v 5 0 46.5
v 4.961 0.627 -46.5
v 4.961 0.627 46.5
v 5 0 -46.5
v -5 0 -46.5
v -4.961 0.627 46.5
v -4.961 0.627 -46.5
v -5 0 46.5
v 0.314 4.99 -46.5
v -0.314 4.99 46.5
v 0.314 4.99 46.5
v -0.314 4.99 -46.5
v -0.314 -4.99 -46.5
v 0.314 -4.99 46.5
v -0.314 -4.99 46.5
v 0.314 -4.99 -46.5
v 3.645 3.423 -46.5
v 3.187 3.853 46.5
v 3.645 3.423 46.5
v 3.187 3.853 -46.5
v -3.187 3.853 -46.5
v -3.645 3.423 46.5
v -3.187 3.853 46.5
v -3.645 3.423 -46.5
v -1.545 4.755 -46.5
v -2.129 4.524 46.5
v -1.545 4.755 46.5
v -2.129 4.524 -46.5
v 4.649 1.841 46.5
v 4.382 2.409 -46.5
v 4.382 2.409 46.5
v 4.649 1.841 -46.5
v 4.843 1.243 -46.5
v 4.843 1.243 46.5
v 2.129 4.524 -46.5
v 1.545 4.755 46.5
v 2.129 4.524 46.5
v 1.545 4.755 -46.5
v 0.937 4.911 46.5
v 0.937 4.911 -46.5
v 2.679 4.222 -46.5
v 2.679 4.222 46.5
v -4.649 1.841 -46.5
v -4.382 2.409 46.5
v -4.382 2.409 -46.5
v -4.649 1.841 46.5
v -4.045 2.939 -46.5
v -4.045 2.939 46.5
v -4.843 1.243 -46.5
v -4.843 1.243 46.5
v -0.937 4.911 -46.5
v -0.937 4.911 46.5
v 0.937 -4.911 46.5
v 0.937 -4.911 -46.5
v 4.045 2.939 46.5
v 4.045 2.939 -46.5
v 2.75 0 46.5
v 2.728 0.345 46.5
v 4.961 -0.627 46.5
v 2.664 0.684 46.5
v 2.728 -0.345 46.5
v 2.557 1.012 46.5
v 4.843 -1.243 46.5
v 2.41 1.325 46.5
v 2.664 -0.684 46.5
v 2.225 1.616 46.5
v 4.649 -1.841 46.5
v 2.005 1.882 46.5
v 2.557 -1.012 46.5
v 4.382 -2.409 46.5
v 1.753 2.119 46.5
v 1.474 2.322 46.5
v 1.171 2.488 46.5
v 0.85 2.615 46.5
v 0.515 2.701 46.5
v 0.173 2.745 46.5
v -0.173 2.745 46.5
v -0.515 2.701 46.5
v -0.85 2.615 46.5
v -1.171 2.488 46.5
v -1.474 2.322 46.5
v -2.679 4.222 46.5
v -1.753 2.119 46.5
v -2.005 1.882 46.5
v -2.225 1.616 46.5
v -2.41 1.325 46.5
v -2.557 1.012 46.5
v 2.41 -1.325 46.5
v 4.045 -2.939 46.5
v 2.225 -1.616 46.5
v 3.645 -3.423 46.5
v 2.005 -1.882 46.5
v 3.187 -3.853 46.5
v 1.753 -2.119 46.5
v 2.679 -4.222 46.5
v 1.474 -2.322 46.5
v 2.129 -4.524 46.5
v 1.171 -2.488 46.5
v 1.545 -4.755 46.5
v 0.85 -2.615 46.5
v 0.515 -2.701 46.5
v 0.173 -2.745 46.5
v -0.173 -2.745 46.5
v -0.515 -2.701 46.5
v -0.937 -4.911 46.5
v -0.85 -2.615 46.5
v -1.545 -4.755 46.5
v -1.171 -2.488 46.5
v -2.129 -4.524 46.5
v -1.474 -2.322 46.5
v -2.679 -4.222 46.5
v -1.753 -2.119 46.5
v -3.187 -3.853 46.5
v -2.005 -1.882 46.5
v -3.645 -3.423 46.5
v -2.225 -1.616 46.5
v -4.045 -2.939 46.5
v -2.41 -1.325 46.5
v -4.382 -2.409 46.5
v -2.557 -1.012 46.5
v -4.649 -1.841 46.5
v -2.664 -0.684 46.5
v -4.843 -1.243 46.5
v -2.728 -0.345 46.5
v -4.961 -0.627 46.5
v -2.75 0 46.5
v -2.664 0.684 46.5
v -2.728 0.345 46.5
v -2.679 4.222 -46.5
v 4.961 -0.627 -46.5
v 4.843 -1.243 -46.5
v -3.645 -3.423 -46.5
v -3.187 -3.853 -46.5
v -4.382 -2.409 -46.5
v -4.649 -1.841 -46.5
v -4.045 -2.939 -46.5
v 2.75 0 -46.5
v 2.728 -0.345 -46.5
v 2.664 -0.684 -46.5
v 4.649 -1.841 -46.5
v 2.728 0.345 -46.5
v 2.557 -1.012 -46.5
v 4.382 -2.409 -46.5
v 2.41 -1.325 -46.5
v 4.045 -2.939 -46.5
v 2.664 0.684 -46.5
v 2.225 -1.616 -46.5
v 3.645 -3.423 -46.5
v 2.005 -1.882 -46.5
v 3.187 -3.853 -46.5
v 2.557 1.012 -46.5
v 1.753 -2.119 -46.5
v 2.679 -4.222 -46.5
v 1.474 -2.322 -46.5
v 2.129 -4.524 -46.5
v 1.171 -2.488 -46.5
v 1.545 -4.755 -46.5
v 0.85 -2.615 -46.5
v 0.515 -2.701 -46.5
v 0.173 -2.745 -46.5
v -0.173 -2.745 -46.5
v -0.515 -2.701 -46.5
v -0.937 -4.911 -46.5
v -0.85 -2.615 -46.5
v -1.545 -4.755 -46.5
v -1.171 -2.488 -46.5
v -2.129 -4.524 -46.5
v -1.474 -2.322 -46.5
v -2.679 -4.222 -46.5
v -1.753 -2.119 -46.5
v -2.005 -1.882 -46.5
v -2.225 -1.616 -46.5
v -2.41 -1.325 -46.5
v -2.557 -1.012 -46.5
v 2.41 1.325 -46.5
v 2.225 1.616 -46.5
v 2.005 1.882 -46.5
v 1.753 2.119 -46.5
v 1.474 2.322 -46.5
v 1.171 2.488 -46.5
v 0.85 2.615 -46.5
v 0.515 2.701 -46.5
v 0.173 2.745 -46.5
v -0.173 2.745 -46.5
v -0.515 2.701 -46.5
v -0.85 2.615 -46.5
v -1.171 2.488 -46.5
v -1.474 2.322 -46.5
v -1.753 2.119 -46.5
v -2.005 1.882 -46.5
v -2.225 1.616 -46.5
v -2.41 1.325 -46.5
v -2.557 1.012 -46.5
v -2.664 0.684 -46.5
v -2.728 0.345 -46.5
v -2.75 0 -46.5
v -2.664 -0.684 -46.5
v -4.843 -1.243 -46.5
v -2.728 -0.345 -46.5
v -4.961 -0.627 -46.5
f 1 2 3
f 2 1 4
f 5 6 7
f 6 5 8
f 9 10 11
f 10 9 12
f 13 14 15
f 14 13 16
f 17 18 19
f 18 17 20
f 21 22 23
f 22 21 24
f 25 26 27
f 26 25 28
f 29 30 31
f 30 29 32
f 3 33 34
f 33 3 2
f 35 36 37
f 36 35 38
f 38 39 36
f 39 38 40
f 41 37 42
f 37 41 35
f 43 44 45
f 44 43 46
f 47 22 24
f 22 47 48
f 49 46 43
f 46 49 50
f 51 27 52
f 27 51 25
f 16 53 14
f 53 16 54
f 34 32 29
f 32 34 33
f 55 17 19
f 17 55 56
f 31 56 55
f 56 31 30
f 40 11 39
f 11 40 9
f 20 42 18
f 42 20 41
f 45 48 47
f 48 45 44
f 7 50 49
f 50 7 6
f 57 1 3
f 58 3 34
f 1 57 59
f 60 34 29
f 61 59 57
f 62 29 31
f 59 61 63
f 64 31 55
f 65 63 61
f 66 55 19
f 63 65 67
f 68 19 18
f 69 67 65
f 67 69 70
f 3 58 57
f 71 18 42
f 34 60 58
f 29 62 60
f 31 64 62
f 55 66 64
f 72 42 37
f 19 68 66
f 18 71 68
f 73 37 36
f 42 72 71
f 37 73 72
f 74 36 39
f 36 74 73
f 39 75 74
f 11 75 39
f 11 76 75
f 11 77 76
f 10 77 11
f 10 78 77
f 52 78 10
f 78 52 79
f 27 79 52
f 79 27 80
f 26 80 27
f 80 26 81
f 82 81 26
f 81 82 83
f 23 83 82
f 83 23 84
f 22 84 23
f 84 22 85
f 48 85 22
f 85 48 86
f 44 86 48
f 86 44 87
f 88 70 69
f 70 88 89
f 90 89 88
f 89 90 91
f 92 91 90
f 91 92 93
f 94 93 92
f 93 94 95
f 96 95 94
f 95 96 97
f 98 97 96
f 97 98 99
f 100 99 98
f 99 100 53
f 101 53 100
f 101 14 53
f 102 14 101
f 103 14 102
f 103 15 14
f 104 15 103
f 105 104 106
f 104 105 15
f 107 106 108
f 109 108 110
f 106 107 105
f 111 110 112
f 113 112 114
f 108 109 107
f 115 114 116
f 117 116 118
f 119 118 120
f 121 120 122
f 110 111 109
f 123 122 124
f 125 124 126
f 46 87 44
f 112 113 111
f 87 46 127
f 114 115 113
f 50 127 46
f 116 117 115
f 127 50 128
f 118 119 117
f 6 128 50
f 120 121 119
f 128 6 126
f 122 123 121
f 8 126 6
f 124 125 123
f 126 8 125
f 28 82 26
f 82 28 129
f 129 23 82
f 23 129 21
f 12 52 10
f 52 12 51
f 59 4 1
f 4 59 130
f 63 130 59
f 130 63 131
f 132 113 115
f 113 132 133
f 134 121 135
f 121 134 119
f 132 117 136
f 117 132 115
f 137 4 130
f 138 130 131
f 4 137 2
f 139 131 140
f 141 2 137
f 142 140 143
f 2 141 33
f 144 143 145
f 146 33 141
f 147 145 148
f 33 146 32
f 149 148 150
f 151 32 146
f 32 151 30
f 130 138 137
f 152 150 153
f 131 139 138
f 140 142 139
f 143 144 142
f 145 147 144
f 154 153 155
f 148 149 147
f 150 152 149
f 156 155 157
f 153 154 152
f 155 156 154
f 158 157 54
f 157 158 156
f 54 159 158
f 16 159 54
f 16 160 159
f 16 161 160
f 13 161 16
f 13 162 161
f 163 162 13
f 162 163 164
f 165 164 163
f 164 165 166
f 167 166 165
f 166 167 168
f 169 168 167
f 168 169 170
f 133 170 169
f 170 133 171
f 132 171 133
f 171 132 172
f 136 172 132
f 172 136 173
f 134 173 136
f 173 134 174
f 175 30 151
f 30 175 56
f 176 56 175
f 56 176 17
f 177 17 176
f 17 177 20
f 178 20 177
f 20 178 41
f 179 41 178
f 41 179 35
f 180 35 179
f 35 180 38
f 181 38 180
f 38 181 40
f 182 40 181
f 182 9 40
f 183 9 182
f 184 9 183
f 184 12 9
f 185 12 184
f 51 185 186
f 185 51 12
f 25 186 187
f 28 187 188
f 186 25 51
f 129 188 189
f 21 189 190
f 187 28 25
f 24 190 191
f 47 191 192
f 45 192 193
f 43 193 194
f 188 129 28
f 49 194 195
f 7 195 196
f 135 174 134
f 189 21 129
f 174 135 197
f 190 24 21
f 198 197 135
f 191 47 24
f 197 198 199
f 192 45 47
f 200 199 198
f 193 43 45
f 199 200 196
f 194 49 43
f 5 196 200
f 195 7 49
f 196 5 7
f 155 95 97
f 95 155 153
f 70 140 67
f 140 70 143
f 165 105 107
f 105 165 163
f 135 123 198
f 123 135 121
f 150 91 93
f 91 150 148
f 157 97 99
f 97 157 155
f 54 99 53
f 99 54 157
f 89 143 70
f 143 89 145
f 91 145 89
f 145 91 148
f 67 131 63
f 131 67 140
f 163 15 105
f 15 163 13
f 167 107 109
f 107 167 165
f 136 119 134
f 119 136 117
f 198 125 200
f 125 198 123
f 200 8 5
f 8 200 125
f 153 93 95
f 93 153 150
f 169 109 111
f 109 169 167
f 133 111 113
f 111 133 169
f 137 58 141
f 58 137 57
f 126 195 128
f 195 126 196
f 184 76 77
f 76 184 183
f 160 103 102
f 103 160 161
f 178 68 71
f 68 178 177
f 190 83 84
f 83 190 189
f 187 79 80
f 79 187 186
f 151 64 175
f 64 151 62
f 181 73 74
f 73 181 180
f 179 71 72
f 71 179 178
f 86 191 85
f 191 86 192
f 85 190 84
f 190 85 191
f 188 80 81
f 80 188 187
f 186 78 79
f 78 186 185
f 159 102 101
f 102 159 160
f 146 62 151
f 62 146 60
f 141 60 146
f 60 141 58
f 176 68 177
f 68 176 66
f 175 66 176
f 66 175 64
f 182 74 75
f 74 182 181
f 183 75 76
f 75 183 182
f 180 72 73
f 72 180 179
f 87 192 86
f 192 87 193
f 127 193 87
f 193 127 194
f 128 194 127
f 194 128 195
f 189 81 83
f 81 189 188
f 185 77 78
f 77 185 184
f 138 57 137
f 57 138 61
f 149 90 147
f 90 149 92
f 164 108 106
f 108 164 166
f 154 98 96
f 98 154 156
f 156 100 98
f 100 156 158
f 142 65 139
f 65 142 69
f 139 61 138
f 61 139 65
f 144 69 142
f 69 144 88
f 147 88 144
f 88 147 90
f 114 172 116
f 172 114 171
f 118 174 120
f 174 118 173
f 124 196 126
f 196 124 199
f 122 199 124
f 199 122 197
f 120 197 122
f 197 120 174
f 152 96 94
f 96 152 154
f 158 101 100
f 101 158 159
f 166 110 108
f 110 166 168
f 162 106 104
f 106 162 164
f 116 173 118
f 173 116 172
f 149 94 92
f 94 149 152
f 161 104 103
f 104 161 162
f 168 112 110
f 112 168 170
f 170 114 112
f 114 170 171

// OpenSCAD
$fn = 50;


difference() {
	union() {
		translate(v = [0, 0, -46.5000000000]) {
			cylinder(h = 93, r = 5.0000000000);
		}
	}
	union() {
		translate(v = [0, 0, -100.0000000000]) {
			cylinder(h = 200, r = 2.7500000000);
		}
	}
}
